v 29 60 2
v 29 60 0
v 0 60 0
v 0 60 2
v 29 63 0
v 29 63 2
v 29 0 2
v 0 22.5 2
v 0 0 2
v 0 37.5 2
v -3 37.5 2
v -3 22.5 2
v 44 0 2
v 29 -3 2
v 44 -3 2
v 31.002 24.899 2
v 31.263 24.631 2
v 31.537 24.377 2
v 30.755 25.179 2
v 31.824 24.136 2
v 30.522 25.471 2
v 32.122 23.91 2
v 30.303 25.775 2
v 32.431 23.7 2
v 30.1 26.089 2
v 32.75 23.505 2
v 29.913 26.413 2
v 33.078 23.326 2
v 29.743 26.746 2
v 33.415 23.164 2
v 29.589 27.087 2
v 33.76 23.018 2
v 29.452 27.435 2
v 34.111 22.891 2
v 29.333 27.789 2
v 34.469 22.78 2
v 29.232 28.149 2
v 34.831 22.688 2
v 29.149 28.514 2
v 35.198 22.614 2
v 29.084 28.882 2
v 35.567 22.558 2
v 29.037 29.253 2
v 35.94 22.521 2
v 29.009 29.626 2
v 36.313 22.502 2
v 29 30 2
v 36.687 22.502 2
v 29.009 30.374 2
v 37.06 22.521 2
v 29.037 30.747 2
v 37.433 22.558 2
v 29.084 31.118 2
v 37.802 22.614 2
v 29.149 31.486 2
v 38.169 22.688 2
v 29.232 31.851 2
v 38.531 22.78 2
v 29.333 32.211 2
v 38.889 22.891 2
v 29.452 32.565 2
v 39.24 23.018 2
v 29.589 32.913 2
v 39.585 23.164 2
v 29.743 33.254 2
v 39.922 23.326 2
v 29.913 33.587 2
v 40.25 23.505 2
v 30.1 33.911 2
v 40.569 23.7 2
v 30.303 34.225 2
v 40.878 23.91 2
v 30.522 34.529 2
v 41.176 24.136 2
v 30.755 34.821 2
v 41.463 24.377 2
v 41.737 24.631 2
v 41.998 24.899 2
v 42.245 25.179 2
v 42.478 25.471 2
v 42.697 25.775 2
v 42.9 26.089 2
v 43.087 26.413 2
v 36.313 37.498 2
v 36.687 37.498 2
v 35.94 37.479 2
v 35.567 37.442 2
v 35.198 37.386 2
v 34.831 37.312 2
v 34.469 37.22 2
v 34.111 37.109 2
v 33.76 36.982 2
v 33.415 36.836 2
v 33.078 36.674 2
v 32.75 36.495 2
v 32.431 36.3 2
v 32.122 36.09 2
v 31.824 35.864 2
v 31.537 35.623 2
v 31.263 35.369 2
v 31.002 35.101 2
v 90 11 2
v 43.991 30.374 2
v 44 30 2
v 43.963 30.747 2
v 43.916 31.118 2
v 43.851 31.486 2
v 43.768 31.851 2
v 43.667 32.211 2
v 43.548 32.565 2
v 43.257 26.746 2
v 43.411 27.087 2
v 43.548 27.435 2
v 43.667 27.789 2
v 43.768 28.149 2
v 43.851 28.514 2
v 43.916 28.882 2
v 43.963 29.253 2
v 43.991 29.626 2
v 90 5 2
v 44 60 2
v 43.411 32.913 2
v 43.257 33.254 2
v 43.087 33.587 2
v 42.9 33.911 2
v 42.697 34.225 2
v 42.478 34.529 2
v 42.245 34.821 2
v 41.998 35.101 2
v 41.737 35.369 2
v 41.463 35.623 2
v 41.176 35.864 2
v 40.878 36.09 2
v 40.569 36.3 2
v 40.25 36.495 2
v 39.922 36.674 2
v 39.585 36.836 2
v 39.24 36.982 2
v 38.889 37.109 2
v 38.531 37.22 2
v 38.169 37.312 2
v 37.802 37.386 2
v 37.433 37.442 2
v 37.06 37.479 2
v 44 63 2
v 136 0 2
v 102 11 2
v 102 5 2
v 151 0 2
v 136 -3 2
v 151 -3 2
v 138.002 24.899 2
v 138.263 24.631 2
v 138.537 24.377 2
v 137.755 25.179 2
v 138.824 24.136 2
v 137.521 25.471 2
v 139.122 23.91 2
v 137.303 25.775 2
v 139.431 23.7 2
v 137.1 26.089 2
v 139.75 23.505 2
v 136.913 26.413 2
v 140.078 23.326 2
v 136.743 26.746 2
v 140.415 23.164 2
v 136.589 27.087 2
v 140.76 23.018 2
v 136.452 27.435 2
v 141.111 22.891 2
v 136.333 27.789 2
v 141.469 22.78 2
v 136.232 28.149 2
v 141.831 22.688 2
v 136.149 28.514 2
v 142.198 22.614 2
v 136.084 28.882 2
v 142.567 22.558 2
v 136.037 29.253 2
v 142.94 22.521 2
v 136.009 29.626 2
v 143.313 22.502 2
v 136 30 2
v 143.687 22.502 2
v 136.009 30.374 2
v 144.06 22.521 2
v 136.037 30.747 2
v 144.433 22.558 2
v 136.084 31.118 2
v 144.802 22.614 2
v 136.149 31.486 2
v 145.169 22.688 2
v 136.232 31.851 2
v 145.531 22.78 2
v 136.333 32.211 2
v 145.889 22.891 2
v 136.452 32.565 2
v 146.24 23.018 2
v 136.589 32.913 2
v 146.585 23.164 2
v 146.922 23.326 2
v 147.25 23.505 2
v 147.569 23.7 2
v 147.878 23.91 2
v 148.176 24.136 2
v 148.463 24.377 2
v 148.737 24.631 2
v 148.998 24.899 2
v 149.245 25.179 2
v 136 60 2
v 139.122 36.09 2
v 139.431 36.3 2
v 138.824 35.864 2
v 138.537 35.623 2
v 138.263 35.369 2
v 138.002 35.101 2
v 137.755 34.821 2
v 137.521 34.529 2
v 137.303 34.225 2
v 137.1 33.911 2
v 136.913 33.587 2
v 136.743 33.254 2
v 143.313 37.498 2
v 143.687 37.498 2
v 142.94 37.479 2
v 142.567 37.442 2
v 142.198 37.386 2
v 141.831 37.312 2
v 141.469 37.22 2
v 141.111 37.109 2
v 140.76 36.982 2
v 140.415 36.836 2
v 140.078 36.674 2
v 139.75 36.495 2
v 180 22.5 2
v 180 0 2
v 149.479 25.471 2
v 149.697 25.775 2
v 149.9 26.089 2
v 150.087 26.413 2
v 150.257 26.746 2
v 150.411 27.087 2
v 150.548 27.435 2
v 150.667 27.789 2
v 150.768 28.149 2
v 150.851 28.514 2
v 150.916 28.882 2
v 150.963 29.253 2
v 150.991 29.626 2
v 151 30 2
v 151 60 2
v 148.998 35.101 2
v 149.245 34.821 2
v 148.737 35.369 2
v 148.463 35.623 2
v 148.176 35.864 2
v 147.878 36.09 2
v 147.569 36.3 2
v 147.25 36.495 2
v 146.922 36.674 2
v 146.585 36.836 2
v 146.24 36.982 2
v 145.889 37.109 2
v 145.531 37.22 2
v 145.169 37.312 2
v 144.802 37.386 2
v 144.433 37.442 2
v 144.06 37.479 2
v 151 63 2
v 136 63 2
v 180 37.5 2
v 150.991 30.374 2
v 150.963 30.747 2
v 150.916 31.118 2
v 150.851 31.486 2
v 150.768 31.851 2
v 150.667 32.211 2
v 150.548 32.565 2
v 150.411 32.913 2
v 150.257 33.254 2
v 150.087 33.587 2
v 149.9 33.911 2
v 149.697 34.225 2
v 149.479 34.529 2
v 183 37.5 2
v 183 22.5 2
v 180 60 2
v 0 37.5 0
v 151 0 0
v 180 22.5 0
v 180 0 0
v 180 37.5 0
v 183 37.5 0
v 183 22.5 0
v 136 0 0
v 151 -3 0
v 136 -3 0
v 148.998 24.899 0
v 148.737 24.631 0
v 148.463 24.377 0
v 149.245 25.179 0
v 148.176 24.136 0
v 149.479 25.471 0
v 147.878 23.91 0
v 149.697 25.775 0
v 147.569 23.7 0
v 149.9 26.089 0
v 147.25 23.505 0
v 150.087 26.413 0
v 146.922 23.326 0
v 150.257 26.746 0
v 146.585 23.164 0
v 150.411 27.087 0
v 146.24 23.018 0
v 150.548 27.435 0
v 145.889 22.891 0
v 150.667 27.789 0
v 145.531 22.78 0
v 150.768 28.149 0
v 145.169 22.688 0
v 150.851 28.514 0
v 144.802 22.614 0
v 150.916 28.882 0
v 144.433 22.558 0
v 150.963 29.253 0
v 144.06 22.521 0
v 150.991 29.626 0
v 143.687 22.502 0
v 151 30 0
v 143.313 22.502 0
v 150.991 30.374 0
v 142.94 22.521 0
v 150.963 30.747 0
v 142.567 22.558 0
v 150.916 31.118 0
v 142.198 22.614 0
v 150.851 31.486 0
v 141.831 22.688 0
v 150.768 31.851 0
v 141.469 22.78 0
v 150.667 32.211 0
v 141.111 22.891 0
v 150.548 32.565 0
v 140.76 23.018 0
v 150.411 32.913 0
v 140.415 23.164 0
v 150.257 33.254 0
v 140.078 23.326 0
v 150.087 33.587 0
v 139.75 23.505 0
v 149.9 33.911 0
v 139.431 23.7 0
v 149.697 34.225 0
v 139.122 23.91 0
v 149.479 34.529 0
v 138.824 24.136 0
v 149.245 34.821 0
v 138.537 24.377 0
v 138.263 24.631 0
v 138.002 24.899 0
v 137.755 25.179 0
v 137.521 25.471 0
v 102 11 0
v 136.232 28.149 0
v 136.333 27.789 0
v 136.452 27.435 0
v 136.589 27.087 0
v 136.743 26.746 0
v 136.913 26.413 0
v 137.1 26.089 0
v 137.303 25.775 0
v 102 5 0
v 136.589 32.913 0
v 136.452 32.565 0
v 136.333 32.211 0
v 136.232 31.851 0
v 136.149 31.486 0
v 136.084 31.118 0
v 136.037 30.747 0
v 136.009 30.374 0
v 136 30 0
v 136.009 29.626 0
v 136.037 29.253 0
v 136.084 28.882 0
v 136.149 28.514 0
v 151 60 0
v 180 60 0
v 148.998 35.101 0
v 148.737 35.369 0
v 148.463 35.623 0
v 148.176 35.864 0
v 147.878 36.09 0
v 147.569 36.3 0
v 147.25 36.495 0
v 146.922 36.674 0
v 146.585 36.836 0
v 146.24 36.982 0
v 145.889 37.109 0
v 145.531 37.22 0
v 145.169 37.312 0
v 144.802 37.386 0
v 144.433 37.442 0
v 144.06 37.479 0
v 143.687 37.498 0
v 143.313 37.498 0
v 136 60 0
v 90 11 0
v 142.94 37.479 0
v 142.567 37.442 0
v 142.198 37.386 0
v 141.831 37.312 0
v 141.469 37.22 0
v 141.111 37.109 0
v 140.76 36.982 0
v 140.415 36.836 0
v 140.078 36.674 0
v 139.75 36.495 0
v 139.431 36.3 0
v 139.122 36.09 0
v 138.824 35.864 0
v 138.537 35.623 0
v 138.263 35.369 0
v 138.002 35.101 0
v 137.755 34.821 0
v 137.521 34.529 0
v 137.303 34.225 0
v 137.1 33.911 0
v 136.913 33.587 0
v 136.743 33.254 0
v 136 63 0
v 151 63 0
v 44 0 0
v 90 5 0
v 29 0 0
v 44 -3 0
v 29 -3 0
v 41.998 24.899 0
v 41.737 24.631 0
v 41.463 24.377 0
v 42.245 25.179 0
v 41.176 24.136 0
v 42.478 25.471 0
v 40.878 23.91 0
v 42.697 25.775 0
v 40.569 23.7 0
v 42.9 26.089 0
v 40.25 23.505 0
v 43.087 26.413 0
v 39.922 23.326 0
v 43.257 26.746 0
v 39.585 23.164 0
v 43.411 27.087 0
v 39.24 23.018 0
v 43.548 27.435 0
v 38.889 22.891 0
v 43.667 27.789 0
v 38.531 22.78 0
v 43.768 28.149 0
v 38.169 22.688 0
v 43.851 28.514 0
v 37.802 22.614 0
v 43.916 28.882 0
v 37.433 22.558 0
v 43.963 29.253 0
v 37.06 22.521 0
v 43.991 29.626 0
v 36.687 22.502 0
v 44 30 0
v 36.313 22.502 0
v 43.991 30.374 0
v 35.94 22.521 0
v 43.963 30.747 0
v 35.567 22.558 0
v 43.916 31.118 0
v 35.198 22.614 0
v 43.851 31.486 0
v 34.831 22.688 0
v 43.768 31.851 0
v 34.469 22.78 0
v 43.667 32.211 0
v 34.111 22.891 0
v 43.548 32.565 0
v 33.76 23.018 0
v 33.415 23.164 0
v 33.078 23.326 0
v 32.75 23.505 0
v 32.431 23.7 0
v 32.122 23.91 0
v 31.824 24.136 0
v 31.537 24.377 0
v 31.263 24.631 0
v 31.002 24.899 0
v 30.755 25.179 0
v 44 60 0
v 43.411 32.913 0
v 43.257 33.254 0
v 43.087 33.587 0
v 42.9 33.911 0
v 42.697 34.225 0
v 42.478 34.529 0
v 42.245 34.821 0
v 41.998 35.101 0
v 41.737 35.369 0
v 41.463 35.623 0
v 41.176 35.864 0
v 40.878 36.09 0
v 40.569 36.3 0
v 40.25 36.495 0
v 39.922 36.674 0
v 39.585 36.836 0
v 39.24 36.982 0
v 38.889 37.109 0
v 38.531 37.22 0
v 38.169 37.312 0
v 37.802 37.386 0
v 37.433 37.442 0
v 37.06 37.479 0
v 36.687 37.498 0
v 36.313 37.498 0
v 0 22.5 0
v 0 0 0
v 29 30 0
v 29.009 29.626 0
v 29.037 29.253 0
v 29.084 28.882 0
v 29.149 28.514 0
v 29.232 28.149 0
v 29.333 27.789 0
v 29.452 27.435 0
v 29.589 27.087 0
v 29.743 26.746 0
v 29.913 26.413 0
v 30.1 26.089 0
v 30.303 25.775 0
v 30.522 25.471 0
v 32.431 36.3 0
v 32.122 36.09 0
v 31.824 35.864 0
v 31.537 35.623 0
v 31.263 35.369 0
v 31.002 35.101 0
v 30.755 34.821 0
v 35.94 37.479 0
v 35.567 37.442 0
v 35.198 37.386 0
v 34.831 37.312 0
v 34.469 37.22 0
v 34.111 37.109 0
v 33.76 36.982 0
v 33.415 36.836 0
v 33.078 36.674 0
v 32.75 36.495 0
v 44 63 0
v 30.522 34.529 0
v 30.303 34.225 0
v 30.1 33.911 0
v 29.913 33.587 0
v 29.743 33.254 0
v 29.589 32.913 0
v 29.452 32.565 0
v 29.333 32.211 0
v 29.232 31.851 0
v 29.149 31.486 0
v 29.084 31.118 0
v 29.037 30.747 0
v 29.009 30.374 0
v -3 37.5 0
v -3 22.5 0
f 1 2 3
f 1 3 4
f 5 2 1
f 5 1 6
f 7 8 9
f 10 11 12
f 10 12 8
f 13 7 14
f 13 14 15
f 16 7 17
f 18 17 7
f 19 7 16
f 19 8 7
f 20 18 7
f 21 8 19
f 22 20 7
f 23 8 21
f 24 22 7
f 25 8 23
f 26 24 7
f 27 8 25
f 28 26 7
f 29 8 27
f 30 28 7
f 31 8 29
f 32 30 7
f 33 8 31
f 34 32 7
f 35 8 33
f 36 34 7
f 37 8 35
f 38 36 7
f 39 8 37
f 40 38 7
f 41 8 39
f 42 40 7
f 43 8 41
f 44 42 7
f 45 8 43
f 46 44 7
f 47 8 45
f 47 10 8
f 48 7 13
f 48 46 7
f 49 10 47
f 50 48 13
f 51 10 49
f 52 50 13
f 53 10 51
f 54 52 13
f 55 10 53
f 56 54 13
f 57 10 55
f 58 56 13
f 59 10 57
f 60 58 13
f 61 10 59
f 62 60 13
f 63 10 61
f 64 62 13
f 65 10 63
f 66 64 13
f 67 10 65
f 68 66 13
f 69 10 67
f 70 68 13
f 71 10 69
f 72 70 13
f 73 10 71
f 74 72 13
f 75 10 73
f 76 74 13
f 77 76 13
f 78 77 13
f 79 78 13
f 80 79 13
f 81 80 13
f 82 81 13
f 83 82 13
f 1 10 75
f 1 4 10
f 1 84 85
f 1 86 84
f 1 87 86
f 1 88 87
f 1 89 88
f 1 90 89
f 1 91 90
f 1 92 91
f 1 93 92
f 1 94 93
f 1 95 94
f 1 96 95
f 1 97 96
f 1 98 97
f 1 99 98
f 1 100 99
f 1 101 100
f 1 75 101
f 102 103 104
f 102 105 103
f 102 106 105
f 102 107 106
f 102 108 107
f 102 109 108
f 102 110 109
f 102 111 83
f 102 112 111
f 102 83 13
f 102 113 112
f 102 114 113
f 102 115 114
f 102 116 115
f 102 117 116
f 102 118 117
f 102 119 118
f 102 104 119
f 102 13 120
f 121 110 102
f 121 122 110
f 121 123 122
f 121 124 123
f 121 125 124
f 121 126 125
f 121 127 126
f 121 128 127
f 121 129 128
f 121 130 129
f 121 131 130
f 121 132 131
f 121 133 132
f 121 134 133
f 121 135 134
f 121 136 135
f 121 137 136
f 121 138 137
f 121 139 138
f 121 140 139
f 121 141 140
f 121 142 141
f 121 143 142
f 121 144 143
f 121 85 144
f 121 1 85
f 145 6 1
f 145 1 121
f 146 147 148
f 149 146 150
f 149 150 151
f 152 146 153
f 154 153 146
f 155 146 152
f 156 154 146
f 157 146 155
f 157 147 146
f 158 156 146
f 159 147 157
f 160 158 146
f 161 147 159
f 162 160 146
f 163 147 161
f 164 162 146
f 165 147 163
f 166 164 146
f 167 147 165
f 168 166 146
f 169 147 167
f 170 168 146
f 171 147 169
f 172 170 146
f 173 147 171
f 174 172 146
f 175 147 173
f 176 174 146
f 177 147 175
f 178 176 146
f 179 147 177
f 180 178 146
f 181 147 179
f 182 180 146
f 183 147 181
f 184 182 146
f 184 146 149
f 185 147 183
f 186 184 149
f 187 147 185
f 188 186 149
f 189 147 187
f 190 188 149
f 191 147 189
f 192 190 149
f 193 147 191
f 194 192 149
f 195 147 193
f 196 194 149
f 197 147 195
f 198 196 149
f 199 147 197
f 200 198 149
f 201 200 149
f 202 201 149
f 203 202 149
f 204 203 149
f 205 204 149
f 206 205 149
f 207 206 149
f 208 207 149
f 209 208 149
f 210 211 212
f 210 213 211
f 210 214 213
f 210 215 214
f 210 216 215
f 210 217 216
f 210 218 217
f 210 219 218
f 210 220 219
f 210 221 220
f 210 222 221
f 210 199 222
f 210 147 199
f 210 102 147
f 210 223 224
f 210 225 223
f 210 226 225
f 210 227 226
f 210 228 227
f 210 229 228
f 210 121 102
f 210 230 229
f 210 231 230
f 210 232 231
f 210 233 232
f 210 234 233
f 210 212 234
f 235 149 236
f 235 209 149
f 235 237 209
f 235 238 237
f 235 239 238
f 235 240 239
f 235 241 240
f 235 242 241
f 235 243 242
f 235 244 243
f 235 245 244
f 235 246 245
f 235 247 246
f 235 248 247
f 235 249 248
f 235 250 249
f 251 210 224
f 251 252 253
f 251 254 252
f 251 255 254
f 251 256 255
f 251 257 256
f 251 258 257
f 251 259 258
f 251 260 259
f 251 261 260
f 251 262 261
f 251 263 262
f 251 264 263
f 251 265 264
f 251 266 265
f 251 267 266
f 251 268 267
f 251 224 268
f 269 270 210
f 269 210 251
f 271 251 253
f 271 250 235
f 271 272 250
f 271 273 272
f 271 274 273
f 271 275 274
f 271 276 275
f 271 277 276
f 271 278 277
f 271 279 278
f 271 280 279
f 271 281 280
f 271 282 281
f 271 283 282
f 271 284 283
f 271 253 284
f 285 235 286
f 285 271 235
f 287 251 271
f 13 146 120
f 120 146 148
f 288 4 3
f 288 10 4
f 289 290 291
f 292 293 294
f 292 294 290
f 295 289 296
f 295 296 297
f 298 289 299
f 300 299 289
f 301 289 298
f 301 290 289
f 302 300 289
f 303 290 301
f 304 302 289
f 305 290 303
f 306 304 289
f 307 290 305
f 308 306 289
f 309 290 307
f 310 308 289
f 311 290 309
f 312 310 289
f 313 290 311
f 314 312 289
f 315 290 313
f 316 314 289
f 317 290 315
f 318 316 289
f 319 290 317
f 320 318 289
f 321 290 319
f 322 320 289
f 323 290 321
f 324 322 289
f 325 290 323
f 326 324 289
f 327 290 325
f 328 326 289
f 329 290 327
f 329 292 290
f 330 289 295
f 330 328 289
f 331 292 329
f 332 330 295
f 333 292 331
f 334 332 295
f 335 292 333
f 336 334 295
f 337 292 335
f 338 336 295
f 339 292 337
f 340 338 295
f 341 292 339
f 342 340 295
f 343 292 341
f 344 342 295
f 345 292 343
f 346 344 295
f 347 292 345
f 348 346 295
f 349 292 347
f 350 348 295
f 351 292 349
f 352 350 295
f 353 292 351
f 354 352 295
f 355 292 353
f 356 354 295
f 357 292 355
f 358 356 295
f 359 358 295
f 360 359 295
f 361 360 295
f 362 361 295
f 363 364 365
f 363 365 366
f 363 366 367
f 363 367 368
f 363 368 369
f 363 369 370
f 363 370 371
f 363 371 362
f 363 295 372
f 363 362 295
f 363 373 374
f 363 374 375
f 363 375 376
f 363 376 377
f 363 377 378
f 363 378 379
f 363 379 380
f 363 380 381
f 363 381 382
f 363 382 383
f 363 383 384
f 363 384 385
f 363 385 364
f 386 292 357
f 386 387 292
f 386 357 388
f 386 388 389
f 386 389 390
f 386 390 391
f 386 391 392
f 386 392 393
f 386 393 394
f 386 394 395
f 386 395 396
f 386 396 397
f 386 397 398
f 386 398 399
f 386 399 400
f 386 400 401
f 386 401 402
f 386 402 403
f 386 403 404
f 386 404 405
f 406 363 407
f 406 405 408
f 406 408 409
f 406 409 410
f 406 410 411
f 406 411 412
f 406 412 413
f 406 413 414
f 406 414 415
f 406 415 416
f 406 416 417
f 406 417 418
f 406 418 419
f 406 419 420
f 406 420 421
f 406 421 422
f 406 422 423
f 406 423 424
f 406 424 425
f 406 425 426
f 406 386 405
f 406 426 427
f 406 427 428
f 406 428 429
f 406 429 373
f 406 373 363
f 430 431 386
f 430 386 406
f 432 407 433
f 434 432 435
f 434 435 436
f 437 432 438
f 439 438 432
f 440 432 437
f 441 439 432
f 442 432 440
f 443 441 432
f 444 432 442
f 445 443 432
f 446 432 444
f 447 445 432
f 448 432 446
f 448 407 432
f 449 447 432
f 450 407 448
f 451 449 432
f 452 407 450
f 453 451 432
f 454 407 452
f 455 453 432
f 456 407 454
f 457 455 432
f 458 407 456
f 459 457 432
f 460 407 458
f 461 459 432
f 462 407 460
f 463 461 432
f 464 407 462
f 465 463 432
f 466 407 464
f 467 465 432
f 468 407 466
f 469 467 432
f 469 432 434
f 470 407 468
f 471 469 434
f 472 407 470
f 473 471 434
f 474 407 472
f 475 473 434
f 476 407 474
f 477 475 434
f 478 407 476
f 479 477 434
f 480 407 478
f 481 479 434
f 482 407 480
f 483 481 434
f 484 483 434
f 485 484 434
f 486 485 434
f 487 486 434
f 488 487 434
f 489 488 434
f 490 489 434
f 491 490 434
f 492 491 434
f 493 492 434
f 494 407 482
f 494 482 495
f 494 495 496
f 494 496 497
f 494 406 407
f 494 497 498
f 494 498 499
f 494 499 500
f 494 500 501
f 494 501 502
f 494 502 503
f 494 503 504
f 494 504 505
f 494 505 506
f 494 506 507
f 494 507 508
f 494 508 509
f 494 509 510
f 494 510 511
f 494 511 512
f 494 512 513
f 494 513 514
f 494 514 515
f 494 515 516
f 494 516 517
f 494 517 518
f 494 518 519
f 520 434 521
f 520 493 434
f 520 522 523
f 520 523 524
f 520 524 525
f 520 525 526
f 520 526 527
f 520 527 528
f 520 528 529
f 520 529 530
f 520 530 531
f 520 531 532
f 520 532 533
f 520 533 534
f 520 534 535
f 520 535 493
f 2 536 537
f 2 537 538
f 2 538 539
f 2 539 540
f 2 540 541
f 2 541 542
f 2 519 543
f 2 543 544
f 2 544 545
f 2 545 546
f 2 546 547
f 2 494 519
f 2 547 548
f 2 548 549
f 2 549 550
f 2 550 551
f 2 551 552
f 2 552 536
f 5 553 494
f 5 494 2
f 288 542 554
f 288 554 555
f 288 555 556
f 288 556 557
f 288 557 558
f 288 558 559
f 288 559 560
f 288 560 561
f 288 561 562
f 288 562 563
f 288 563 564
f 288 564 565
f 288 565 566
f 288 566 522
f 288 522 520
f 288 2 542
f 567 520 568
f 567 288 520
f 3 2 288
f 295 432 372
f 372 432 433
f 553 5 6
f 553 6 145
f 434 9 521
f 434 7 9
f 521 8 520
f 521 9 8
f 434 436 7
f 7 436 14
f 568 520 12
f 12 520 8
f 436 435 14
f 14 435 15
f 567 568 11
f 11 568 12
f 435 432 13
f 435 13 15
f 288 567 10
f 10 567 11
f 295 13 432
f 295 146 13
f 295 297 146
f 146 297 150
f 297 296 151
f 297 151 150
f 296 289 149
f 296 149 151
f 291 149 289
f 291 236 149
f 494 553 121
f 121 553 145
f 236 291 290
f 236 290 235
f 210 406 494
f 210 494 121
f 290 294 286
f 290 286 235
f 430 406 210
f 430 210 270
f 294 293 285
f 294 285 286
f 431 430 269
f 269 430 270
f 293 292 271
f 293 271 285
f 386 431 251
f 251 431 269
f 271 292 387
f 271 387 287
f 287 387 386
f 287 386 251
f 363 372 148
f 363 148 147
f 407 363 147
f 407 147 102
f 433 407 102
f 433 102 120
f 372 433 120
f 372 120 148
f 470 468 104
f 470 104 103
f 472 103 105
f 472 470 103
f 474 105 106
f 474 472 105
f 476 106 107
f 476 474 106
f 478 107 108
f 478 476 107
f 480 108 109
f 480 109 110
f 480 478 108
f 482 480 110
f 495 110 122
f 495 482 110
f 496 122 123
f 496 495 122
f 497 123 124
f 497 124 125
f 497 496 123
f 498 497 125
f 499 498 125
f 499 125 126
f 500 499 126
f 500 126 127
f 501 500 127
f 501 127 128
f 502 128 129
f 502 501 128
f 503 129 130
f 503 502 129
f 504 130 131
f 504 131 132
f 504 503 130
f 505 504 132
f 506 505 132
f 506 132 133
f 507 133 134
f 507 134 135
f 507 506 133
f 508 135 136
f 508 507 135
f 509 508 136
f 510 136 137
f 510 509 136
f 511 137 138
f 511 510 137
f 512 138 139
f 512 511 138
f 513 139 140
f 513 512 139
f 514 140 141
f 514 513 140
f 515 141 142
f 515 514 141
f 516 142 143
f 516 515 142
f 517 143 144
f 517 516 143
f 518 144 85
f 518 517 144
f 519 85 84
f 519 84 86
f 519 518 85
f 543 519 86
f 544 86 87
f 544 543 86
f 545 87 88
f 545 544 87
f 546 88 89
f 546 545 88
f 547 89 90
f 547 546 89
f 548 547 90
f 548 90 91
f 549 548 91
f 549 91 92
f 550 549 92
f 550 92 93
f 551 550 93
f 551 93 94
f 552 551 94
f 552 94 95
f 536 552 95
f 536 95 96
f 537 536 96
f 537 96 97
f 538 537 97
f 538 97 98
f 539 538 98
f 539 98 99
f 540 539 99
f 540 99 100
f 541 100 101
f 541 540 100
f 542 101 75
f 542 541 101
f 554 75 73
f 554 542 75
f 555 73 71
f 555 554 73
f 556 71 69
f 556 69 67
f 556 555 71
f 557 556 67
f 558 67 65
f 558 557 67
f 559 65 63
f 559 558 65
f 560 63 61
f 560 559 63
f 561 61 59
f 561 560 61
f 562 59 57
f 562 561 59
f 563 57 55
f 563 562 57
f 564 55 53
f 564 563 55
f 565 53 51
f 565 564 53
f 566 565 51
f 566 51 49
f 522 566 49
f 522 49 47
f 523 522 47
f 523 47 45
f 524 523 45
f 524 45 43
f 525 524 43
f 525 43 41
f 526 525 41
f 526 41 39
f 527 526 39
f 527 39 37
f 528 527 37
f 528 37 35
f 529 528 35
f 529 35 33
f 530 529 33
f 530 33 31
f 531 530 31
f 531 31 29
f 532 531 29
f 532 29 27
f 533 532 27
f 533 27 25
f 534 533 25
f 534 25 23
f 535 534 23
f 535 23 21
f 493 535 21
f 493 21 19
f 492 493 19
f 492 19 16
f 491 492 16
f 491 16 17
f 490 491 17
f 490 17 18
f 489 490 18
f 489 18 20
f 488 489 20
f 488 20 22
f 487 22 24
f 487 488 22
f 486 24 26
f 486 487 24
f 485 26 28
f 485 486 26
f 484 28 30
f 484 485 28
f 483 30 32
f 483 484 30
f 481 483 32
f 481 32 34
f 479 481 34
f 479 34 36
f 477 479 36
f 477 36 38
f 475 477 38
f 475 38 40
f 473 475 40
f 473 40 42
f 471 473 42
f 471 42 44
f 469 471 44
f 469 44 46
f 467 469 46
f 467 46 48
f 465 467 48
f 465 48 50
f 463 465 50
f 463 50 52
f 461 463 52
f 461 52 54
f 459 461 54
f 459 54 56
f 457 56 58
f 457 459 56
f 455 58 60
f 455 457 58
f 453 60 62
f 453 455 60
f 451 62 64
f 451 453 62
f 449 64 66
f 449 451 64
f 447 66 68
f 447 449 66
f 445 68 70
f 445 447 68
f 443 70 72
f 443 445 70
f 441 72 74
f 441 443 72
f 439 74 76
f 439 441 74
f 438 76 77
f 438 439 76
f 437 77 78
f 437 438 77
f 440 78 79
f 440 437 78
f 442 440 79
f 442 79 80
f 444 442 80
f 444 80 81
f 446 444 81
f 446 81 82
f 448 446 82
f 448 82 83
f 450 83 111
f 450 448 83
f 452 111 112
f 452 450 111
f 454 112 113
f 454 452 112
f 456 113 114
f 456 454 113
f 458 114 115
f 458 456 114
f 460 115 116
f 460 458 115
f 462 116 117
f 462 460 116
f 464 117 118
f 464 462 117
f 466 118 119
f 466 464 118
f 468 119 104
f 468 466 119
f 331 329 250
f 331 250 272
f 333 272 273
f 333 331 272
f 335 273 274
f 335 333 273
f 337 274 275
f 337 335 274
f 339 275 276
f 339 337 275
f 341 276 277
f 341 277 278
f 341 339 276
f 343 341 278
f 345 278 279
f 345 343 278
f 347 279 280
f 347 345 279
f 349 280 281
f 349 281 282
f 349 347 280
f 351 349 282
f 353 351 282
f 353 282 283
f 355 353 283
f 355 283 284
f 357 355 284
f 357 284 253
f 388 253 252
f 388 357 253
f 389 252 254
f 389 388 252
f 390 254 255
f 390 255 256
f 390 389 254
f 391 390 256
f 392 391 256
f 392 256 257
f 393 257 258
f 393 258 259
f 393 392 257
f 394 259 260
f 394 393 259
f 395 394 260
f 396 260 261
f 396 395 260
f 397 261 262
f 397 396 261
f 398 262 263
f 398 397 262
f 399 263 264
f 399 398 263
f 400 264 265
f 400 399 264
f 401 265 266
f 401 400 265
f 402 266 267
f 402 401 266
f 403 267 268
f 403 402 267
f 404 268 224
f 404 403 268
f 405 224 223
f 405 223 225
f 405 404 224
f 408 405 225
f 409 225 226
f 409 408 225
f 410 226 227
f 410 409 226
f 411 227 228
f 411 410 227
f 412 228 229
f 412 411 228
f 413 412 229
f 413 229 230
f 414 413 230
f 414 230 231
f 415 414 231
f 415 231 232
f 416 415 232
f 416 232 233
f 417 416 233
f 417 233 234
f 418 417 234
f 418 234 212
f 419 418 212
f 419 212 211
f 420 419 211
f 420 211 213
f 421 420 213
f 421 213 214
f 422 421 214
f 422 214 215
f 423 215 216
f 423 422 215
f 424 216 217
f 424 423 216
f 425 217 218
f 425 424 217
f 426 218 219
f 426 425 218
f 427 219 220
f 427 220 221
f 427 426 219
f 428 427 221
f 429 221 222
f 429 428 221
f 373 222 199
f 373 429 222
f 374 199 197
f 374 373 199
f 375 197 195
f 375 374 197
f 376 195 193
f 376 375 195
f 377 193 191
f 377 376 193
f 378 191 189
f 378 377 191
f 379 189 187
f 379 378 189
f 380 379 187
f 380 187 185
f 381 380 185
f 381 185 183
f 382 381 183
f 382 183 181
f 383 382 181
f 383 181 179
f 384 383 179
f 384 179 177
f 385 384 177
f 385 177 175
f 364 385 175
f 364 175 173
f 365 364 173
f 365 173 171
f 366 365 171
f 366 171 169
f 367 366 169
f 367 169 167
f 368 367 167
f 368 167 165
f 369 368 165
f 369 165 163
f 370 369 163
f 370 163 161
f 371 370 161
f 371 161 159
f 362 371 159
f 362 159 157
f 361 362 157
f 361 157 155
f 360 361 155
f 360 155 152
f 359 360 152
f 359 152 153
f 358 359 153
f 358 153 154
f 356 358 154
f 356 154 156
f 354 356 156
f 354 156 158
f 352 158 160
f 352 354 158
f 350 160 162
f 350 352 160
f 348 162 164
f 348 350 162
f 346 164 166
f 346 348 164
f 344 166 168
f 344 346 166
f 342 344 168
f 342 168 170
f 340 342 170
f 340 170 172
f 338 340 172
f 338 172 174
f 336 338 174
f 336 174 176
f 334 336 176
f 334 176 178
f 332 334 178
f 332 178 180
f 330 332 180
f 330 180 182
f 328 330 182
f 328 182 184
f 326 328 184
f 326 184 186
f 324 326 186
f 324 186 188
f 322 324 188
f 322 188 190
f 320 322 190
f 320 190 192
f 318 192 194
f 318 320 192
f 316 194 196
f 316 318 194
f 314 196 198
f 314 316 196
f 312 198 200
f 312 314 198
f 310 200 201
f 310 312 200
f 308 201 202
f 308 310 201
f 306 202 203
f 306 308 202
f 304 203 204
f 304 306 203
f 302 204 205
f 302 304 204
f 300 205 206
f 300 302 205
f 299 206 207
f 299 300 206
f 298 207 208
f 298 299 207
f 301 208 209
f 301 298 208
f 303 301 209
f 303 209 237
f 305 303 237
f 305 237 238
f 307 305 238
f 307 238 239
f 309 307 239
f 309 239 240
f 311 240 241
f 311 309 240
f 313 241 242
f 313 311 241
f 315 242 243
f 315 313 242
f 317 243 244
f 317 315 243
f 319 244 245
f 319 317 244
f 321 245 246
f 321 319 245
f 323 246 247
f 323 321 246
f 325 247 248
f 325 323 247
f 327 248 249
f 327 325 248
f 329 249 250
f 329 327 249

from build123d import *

# Parameters (mm, degrees)
SKETCH001_W   = 180
SKETCH001_H   = 60
SKETCH001_W_2 = 15
SKETCH001_H_2 = 3
SKETCH001_W_3 = 3
SKETCH001_H_3 = 15
PAD_DEPTH     = 2
SKETCH_R      = 7.5
SKETCH_W      = 12
SKETCH_H      = 6
POCKET_DEPTH  = 2


with BuildPart() as part:
    # Sketch001 → Pad (new body)
    with BuildSketch(Plane.XY):
        with Locations((90, 30)):
            Rectangle(SKETCH001_W, SKETCH001_H)
        with Locations((36.5, 61.5)):
            Rectangle(SKETCH001_W_2, SKETCH001_H_2)
        with Locations((36.5, -1.5)):
            Rectangle(SKETCH001_W_2, SKETCH001_H_2)
        with Locations((143.5, 61.5)):
            Rectangle(SKETCH001_W_2, SKETCH001_H_2)
        with Locations((143.5, -1.5)):
            Rectangle(SKETCH001_W_2, SKETCH001_H_2)
        with Locations((-1.5, 30)):
            Rectangle(SKETCH001_W_3, SKETCH001_H_3)
        with Locations((181.5, 30)):
            Rectangle(SKETCH001_W_3, SKETCH001_H_3)
    extrude(amount=PAD_DEPTH)

    # Sketch → Pocket (cut)
    with BuildSketch(Plane.XY):
        with Locations((36.5, 30)):
            Circle(SKETCH_R)
        with Locations((143.5, 30)):
            Circle(SKETCH_R)
        with Locations((96, 8)):
            Rectangle(SKETCH_W, SKETCH_H)
    extrude(amount=POCKET_DEPTH, mode=Mode.SUBTRACT)


solid = part.part
